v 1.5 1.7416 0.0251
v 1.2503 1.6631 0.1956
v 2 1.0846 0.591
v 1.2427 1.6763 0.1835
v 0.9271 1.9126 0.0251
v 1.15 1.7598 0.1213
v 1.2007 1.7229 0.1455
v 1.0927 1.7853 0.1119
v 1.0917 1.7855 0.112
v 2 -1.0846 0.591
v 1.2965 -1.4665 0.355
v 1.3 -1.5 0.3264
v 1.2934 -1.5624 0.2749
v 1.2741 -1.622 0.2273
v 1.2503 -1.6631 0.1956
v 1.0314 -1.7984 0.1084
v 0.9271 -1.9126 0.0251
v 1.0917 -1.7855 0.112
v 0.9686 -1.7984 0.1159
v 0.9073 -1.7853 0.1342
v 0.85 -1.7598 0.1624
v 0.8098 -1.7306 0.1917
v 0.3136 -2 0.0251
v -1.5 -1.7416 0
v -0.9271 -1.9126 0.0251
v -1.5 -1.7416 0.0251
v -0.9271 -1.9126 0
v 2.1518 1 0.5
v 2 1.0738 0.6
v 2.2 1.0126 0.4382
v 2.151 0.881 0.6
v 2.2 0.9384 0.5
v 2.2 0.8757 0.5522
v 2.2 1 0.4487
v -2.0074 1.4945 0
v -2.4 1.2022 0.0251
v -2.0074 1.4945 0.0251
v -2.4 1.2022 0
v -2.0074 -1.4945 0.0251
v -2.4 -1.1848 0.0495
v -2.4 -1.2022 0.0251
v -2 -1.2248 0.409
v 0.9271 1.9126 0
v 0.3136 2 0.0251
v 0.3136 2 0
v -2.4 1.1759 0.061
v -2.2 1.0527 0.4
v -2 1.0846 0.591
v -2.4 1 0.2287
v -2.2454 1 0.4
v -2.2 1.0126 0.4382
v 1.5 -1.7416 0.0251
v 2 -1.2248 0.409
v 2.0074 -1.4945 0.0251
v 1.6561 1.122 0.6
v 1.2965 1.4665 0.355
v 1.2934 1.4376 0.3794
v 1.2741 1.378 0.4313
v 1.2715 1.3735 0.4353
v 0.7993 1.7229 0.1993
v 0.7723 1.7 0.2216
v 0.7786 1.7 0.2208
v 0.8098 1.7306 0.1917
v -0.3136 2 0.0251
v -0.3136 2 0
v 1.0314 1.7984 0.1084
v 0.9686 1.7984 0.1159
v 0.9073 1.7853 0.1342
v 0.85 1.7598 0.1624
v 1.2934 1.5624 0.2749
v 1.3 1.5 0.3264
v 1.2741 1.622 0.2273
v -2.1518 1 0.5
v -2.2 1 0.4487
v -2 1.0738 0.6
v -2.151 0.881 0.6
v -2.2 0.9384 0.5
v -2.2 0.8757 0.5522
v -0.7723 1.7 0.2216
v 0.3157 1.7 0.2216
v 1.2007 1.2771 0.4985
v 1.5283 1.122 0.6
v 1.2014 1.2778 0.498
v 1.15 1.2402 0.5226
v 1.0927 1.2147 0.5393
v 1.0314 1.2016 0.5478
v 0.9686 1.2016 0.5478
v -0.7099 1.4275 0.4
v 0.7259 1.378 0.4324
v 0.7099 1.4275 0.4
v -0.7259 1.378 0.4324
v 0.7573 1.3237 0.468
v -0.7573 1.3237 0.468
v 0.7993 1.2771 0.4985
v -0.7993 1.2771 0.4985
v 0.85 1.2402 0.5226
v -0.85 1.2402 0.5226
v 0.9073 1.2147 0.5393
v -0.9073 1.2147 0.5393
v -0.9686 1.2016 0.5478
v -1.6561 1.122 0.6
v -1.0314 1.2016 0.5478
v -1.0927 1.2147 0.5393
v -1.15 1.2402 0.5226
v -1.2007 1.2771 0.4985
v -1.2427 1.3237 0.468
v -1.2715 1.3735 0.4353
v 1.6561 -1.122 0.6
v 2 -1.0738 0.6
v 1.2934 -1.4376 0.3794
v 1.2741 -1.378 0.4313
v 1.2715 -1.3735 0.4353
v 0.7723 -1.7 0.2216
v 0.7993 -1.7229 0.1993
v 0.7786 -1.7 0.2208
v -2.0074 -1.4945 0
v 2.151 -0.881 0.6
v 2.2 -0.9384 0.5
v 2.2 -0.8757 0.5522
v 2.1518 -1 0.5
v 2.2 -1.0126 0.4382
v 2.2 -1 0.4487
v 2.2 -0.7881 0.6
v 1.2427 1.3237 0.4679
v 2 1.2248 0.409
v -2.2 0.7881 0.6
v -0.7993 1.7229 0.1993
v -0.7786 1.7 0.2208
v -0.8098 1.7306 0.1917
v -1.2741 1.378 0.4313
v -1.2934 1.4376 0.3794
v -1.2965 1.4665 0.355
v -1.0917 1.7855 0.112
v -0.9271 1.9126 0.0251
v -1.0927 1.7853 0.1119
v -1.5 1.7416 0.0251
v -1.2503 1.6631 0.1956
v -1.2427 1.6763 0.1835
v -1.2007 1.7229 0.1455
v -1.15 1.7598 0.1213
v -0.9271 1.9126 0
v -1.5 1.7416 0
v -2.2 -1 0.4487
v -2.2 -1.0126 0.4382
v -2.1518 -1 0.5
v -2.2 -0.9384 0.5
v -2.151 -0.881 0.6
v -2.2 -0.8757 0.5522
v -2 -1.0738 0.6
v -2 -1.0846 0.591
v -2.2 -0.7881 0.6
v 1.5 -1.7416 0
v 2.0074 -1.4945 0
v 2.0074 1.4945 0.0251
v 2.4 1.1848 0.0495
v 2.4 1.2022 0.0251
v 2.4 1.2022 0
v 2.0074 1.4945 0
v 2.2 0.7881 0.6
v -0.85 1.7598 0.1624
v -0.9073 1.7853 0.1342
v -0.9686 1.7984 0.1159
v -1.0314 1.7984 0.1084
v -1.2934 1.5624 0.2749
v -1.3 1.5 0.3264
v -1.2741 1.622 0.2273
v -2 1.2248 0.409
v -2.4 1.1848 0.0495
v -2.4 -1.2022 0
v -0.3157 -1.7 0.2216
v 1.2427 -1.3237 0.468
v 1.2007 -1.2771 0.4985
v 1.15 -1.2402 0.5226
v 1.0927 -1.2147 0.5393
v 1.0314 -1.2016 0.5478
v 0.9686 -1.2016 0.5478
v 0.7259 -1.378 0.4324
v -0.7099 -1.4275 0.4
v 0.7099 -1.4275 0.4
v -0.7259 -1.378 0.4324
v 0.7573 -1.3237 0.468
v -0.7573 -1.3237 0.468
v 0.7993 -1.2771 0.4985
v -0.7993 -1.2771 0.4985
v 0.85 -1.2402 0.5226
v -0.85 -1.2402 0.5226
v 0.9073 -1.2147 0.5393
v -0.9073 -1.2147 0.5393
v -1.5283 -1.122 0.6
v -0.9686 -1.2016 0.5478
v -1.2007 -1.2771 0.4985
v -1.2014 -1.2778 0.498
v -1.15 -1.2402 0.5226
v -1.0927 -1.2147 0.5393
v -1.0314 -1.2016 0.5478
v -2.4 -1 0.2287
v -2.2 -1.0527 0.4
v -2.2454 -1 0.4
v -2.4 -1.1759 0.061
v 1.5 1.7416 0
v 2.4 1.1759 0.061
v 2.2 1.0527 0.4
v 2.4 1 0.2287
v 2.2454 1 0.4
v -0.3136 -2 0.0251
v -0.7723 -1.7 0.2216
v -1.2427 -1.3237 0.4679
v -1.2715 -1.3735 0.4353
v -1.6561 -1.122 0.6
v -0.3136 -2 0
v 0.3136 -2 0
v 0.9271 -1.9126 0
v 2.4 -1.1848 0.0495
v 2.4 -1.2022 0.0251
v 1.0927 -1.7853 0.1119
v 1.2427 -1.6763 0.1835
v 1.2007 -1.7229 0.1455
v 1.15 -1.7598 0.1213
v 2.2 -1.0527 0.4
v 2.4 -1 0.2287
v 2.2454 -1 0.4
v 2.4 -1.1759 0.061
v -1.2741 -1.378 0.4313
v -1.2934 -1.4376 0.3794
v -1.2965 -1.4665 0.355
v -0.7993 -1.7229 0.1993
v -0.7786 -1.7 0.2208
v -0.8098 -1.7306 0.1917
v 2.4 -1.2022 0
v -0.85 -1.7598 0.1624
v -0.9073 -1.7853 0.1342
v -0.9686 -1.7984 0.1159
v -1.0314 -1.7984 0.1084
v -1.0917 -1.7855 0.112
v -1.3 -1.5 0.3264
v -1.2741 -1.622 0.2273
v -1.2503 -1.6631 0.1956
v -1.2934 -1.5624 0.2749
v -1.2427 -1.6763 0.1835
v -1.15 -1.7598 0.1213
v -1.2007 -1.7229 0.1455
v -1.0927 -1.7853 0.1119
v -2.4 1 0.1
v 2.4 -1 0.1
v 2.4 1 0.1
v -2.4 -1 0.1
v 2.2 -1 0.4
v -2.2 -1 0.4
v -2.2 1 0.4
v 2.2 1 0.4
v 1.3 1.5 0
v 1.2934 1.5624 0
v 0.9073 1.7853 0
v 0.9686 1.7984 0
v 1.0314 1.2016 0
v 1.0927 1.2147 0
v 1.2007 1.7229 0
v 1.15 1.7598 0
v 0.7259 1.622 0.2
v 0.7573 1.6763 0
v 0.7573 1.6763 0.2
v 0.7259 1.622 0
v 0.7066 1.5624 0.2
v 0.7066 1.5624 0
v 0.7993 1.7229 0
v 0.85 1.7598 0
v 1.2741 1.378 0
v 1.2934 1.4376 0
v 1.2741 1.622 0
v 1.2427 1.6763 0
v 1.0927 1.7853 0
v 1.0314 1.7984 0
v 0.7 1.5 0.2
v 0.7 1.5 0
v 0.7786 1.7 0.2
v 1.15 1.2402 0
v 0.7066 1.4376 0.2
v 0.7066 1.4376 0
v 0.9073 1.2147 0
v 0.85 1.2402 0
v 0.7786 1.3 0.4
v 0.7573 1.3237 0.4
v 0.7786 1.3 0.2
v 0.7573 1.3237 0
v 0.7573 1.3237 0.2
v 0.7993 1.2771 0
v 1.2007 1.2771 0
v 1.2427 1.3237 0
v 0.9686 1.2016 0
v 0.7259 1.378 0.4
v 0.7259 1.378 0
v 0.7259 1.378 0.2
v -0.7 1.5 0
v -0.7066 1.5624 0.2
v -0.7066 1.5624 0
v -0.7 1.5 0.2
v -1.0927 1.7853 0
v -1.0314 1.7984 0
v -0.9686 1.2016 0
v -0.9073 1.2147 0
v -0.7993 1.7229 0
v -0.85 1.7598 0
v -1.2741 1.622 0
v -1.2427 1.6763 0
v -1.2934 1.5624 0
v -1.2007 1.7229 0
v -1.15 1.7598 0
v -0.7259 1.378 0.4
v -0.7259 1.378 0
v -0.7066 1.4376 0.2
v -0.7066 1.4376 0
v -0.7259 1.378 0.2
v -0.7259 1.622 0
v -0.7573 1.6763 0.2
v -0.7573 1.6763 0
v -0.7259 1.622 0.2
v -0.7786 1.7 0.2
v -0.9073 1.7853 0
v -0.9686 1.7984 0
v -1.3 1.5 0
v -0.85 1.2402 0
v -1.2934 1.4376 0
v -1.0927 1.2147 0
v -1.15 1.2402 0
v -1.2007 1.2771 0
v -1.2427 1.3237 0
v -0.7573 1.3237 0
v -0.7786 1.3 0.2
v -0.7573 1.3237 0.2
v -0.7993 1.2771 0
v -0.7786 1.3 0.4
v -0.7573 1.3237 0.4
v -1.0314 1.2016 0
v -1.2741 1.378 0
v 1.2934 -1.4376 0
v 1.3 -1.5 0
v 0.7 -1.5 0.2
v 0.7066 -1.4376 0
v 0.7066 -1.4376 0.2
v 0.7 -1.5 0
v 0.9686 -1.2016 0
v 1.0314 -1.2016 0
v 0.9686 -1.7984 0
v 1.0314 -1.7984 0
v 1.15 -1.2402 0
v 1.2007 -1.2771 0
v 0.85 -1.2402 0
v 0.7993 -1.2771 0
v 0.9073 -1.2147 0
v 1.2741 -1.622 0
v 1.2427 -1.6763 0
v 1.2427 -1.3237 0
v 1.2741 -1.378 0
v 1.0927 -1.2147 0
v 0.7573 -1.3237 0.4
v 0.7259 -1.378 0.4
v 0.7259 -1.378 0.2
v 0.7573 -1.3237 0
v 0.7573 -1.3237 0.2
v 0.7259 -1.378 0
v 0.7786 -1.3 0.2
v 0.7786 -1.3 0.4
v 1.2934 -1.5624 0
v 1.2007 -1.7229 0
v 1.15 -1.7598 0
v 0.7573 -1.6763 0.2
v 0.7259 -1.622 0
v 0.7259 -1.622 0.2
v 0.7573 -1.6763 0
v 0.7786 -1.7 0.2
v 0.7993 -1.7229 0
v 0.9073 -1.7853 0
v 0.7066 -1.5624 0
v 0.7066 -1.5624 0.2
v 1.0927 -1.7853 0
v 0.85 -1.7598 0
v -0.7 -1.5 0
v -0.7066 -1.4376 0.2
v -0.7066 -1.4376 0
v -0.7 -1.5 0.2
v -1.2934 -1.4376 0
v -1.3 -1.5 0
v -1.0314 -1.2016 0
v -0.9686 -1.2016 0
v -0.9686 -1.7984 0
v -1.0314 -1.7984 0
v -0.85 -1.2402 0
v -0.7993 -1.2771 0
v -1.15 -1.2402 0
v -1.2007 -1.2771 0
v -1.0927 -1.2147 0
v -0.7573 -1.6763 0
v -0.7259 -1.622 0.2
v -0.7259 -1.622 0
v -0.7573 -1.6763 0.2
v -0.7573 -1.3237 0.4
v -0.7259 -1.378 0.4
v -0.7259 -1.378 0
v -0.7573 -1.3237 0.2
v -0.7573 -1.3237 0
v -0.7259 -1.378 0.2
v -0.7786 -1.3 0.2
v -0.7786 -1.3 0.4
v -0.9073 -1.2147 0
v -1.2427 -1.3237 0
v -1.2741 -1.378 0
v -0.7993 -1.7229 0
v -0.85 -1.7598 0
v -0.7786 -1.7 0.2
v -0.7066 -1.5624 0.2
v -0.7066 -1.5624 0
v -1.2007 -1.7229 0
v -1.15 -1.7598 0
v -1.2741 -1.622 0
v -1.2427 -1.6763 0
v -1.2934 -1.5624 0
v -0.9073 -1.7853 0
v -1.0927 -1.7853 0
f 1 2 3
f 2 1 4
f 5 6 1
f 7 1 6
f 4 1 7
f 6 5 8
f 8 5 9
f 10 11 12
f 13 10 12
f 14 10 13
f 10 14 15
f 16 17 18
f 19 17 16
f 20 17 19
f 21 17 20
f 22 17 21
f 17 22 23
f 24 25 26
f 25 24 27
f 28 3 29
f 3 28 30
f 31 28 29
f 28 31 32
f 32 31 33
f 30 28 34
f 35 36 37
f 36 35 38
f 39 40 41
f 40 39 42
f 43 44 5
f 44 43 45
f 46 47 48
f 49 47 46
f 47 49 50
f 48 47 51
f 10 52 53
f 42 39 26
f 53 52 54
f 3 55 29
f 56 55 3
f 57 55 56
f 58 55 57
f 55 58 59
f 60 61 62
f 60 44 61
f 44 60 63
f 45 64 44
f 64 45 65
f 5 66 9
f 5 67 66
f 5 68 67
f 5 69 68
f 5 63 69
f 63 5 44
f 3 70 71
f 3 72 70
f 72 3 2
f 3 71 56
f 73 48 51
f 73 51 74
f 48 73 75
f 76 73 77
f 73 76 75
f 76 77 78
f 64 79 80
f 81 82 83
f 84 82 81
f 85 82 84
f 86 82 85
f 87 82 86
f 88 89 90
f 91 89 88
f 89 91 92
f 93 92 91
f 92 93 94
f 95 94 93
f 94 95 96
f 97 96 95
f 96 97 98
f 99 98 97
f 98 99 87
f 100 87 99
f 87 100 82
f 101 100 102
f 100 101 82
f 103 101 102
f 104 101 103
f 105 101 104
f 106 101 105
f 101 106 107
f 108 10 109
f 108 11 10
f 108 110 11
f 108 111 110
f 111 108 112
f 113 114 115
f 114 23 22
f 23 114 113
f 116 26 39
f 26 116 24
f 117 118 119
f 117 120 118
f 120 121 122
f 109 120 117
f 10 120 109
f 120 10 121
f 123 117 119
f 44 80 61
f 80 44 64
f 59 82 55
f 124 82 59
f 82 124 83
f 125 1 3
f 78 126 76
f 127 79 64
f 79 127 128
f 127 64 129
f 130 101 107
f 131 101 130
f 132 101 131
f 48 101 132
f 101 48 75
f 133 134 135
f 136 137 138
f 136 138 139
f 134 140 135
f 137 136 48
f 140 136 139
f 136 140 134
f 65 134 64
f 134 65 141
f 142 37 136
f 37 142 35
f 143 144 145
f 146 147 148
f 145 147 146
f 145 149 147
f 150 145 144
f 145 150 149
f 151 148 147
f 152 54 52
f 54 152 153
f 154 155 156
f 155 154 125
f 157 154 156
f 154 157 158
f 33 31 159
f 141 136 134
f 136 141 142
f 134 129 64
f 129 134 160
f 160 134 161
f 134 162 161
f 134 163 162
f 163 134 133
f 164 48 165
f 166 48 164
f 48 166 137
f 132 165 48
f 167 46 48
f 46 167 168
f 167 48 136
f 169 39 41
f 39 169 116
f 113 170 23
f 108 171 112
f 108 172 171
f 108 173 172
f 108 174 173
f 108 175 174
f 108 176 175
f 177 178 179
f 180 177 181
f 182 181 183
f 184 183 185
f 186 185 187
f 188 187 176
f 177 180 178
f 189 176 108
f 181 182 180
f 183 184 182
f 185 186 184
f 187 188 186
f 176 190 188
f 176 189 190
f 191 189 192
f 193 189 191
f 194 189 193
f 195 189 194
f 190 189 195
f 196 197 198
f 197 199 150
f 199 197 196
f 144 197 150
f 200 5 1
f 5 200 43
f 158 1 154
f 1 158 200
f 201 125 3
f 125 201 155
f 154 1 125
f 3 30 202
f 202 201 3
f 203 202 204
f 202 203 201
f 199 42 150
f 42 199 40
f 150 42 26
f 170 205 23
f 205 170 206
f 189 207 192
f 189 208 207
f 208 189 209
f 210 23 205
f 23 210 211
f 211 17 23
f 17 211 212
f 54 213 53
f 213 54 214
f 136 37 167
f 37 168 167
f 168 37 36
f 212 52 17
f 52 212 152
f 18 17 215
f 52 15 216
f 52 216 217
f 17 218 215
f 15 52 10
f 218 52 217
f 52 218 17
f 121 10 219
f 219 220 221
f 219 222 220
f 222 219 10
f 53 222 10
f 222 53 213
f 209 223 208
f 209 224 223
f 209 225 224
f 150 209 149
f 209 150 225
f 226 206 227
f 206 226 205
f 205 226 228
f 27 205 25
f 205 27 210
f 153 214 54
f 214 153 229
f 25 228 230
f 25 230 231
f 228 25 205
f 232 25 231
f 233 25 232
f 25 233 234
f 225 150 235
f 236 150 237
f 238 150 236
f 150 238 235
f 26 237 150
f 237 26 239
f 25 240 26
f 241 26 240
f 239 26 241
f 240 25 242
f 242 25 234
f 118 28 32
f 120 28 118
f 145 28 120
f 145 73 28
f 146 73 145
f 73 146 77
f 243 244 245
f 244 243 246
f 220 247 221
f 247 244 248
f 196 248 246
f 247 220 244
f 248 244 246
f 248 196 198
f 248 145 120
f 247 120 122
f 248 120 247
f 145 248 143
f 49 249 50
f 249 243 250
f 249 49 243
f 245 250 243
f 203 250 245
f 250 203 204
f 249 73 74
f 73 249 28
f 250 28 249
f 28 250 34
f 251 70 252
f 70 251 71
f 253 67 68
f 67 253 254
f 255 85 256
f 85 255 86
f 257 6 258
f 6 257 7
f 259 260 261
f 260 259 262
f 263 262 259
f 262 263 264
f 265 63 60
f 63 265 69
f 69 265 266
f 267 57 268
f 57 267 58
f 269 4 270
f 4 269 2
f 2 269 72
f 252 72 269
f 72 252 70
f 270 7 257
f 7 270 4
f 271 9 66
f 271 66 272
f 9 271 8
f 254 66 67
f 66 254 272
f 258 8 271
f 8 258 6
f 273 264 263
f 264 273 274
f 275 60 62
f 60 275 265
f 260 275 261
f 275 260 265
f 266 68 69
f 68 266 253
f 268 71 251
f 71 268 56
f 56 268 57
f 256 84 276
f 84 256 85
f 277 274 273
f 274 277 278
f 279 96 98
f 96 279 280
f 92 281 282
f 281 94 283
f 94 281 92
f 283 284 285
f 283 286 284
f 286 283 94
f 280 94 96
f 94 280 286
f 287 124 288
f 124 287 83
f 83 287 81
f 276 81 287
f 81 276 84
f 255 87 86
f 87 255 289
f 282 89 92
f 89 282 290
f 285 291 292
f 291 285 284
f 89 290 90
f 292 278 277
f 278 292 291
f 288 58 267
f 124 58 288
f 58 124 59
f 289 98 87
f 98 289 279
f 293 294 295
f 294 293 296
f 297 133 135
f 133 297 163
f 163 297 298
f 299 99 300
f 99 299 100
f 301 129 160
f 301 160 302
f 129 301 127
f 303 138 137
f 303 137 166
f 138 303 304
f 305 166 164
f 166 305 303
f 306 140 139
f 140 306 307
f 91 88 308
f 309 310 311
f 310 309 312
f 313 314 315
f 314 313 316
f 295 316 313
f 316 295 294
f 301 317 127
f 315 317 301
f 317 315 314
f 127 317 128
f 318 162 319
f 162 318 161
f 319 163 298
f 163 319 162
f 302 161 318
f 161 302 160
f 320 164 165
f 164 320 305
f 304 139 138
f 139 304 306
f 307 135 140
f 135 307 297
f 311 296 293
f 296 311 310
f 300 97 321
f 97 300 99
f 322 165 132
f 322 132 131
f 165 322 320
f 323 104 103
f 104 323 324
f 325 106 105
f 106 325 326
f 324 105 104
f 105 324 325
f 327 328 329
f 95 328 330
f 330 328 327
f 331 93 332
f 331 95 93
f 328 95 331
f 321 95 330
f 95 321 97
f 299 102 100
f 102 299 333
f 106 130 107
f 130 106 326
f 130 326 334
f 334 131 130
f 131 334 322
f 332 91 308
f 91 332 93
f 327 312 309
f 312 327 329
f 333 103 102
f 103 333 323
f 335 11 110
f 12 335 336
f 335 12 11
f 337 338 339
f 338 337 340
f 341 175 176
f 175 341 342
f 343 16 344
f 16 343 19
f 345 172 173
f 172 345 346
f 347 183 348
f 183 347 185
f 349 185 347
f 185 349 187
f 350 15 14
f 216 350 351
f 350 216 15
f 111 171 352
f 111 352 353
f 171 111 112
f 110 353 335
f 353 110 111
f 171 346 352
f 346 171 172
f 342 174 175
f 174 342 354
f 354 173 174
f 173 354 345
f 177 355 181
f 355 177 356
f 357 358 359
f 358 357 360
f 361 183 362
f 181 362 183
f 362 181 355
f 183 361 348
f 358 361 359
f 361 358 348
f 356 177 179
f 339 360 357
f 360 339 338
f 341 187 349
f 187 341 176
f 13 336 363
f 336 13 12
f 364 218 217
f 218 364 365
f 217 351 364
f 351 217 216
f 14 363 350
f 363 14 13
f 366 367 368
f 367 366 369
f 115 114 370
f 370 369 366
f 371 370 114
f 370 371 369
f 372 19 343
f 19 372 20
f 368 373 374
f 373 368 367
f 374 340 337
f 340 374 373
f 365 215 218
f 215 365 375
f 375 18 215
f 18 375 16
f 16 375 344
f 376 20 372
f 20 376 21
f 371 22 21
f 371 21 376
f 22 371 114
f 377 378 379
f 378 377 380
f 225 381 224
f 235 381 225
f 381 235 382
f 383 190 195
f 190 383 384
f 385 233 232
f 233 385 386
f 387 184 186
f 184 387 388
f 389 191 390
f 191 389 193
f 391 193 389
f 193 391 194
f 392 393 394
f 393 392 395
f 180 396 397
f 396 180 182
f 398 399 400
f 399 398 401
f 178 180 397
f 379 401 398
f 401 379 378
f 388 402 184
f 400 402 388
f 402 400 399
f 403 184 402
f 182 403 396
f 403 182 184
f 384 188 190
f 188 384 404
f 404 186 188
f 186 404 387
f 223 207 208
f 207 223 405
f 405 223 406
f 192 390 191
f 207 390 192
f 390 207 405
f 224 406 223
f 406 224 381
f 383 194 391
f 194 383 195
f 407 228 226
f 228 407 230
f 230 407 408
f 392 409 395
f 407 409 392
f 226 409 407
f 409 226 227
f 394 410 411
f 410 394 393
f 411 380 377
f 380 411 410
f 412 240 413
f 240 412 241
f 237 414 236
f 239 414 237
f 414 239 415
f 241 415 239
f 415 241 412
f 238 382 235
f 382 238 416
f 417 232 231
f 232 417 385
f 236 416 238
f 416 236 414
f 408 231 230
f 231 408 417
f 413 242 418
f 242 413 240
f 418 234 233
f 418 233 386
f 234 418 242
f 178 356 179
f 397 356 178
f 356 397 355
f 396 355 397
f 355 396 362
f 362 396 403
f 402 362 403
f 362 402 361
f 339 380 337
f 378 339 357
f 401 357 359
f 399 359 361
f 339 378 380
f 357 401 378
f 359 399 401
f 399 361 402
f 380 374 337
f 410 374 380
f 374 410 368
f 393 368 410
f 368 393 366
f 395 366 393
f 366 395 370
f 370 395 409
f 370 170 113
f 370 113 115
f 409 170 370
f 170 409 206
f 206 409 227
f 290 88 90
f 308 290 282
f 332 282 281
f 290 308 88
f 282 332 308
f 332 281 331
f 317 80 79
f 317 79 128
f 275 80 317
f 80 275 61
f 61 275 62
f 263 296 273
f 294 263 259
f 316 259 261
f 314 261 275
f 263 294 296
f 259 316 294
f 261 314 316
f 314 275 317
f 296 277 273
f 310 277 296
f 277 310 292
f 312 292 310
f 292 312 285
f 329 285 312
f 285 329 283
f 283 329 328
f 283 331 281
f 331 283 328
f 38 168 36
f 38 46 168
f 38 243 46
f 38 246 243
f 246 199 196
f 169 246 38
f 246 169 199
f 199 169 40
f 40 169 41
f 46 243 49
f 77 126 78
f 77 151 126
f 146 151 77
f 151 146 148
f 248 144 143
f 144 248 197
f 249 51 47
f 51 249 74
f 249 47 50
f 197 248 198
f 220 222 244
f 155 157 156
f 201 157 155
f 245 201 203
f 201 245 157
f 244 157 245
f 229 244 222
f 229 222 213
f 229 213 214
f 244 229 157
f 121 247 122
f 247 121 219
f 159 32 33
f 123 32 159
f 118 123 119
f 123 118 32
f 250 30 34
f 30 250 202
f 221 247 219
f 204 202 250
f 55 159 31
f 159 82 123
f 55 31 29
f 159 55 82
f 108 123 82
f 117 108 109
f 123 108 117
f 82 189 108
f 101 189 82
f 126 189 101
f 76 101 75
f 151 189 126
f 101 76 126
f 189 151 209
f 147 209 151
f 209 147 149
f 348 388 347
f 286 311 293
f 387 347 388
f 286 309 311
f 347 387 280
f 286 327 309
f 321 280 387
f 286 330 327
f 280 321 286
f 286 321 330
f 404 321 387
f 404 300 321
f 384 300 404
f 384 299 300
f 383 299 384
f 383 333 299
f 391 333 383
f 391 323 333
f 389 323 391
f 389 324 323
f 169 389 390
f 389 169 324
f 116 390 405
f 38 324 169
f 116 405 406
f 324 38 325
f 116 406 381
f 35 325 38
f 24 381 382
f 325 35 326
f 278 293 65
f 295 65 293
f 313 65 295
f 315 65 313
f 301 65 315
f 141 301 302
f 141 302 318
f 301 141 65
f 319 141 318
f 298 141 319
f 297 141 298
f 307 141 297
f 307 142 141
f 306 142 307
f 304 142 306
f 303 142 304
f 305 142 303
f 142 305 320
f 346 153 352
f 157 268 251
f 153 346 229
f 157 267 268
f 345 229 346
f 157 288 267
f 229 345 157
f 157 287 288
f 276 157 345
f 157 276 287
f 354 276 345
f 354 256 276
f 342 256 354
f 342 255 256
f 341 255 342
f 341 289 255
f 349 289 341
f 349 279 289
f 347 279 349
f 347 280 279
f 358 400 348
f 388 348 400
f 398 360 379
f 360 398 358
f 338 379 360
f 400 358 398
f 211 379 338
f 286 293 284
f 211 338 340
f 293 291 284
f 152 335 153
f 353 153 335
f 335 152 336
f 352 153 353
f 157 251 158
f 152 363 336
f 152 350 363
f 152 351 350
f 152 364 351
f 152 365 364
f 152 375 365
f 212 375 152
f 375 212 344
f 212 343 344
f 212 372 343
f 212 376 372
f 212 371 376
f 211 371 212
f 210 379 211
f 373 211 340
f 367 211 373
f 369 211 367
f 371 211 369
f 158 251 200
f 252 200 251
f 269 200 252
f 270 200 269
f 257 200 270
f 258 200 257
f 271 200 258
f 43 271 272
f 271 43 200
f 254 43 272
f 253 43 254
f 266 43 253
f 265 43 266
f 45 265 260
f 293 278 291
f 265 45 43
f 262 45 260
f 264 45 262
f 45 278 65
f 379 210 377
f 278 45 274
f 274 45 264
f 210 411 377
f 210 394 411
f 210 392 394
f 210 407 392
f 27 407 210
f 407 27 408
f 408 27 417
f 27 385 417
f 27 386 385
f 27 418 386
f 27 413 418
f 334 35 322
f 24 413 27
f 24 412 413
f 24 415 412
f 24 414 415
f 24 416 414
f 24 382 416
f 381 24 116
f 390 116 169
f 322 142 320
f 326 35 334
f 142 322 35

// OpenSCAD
$fn=30;
threadHoleRadius=0.3;
threadWidth=0.4;

FingerFlexRunner();

module FingerFlexRunner()
{
    difference()
    {
        resize(newsize=[6,4,2])
        hull()
        {
            //translate([0,0,0.5]) cylinder(r=4, h=1, center=true);
            cylinder(r=6, h=0.2, center=true);
            translate([0,0,0]) rotate([90,0,90]) cylinder(r=4, h=8, center=true);
        }
        translate([0,0,0.3]) cube([100,2,0.4], center=true);
        
        //Thread holes
        translate([1,1.5,0.3]) cylinder(r=threadHoleRadius, h=20, center=true);
        translate([-1,1.5,0.3]) cylinder(r=threadHoleRadius, h=20, center=true);

        translate([1,-1.5,0.3]) cylinder(r=threadHoleRadius, h=20, center=true);
        translate([-1,-1.5,0.3]) cylinder(r=threadHoleRadius, h=20, center=true);
        
        //thread track
        translate([0,-1.5,0.3])  cube([2,threadWidth,0.2], center=true);
        translate([0,1.5,0.3])  cube([2,threadWidth,0.2], center=true);
        
        
        //Trim ends
        translate([-7.4,0,0.3])  cube([10,10,10], center=true);
        translate([-7.2,0,5.4])  cube([10,10,10], center=true);
        
        translate([7.4,0,0.3])  cube([10,10,10], center=true);
        translate([7.2,0,5.4])  cube([10,10,10], center=true);
        
        //subtract top
        translate([0,0,5.6])  cube([10,10,10], center=true);
        
        //subtract bottom
        translate([0,0,-5]) cube([100,100,10], center=true);
    }

   

}
